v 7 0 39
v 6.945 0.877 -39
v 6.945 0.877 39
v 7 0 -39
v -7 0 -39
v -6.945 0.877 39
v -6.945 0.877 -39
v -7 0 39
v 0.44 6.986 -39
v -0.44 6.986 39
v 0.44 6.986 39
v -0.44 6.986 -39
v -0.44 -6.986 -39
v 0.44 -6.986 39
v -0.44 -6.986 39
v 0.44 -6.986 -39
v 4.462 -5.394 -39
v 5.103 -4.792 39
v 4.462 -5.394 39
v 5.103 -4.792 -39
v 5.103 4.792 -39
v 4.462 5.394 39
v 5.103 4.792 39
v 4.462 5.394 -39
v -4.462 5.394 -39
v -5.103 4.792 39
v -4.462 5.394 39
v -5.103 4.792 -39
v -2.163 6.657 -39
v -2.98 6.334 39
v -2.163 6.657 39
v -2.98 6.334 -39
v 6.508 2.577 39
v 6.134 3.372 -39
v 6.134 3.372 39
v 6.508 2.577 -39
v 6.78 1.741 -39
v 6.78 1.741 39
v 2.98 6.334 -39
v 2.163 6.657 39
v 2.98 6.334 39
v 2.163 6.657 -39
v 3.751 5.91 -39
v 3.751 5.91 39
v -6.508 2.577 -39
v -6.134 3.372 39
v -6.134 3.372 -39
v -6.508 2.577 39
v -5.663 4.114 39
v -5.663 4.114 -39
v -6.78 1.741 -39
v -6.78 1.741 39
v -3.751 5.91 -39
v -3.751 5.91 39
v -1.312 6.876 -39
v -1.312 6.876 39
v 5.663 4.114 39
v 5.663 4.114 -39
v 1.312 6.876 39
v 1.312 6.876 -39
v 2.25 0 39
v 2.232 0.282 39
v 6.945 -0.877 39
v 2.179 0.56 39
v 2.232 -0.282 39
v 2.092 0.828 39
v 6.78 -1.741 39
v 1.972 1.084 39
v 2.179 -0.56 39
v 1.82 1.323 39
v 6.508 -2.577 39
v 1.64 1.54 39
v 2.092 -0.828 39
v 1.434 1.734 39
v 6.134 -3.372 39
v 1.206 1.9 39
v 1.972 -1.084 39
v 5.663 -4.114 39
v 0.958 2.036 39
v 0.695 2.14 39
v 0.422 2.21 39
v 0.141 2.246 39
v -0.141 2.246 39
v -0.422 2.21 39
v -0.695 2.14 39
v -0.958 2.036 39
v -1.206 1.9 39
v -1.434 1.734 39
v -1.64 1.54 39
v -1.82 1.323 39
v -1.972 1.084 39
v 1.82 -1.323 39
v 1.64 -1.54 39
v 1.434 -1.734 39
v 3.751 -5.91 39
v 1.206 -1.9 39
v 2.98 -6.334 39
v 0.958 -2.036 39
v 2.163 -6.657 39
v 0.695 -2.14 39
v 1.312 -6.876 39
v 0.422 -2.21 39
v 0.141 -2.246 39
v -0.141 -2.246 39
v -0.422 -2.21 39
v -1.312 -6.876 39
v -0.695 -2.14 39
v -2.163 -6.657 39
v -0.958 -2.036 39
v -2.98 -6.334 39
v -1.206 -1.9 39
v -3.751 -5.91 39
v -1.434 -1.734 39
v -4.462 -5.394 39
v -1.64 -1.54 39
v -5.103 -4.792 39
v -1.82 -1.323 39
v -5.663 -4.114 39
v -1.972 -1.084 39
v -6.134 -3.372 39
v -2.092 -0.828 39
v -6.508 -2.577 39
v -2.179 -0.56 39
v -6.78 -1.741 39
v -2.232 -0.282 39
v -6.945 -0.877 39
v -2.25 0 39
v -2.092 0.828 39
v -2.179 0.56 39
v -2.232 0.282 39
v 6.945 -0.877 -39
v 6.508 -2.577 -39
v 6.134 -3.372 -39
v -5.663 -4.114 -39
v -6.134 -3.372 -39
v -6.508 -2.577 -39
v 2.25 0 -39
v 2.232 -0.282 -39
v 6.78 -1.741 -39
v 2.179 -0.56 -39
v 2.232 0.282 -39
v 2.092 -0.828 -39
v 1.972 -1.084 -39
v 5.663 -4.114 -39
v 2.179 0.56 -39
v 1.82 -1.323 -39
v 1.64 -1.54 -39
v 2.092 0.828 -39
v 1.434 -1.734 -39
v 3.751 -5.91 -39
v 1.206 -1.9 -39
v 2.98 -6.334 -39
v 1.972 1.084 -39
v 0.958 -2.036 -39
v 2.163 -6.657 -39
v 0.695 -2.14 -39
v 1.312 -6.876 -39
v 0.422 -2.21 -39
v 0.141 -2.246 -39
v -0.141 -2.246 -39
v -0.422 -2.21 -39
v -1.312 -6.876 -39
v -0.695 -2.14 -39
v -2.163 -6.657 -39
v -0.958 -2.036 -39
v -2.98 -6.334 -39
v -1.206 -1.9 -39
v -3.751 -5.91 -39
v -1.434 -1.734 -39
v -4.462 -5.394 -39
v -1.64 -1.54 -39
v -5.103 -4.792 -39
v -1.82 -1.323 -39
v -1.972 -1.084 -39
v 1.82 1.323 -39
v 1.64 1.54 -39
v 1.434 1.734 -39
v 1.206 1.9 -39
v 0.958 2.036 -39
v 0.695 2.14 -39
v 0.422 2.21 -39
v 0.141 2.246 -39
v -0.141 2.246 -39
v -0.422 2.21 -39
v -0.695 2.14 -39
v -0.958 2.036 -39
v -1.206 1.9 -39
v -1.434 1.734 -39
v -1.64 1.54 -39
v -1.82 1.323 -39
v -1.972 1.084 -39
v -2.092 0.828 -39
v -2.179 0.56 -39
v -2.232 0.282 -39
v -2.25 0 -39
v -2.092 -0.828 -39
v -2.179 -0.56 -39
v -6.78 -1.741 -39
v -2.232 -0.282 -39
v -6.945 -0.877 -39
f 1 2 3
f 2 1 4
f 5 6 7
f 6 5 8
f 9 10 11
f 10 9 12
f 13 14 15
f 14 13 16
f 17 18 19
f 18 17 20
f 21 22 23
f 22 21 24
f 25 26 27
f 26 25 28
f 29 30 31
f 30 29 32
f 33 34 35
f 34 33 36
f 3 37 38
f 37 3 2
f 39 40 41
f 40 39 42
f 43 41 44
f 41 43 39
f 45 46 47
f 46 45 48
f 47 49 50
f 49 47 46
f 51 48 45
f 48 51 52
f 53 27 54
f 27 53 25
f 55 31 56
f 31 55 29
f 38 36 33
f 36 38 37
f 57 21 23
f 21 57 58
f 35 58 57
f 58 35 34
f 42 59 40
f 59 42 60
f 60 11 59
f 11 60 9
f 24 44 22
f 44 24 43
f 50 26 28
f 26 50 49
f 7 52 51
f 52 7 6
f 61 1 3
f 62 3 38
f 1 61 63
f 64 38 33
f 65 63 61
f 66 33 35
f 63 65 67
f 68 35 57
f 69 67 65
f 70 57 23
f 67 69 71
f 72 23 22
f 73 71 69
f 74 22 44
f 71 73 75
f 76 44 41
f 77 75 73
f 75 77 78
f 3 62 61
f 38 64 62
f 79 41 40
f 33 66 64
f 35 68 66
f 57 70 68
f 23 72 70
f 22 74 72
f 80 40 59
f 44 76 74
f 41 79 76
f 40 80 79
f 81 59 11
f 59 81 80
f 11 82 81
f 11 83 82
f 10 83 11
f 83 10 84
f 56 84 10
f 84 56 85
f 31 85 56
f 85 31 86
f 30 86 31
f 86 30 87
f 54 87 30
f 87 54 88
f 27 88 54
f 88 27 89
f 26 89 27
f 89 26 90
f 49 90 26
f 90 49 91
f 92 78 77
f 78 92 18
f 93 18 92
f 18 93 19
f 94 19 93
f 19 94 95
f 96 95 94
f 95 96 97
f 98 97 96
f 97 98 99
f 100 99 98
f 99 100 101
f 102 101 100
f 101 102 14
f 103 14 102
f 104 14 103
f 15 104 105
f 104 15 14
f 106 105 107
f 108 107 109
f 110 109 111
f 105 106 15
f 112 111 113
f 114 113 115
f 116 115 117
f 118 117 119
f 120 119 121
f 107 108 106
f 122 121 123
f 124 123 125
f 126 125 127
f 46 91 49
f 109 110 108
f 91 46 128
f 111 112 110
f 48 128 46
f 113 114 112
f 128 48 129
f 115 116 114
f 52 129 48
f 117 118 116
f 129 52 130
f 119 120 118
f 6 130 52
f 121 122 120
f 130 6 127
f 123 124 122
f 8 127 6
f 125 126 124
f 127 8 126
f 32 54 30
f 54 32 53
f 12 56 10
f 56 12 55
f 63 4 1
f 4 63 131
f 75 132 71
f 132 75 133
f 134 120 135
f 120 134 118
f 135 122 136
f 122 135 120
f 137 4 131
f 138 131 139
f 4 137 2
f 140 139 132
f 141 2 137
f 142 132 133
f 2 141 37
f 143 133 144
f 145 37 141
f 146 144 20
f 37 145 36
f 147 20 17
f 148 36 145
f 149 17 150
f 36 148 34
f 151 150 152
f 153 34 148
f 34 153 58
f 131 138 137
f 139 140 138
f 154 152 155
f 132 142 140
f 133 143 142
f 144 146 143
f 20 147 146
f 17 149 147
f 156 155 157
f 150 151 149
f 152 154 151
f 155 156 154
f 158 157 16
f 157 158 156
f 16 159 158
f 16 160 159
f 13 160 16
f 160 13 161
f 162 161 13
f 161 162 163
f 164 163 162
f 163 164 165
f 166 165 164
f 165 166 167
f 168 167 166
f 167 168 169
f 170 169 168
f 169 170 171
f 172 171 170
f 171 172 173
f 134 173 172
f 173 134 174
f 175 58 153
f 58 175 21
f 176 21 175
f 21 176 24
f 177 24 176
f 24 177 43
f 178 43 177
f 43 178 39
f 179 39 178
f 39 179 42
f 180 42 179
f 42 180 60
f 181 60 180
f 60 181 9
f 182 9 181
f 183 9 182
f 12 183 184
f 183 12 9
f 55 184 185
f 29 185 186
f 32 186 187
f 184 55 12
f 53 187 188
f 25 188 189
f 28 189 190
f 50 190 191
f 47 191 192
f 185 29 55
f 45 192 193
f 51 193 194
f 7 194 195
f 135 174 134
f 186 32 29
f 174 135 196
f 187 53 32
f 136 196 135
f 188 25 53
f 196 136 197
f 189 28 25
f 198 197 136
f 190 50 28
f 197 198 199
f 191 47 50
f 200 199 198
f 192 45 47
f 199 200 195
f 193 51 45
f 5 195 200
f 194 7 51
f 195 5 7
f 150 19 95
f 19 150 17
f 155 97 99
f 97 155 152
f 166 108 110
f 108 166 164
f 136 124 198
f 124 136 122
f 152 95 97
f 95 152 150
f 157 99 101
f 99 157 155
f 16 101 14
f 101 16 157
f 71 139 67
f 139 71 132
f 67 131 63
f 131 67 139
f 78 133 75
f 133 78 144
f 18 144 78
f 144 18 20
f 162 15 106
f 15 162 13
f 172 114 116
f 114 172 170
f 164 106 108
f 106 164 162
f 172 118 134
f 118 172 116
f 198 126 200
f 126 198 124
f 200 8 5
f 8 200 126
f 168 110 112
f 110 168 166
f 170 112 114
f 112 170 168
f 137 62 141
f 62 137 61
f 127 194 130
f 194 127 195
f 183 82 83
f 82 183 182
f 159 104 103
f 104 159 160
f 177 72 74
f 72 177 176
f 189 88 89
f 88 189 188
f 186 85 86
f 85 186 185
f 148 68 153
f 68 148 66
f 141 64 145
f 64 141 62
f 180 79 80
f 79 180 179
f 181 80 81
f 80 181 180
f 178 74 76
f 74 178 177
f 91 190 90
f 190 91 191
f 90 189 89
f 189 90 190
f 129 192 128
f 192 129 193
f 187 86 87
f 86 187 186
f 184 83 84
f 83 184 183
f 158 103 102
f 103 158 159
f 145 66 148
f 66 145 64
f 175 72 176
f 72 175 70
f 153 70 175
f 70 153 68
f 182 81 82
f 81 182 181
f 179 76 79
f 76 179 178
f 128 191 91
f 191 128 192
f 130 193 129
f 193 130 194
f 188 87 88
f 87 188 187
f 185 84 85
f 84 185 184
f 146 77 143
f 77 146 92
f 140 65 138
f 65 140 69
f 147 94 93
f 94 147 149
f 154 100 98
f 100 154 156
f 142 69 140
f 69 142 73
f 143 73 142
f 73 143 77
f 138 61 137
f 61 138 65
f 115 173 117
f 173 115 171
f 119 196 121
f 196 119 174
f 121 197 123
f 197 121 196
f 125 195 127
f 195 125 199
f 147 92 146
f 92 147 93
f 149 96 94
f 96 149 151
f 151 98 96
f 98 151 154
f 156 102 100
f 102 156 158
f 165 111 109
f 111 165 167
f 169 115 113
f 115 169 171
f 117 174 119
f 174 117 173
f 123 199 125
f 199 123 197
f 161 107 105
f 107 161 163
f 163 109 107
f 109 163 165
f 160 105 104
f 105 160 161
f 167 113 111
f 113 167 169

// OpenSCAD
$fn = 50;


difference() {
	union() {
		translate(v = [0, 0, -39.0000000000]) {
			cylinder(h = 78, r = 7.0000000000);
		}
	}
	union() {
		translate(v = [0, 0, -100.0000000000]) {
			cylinder(h = 200, r = 2.2500000000);
		}
	}
}
